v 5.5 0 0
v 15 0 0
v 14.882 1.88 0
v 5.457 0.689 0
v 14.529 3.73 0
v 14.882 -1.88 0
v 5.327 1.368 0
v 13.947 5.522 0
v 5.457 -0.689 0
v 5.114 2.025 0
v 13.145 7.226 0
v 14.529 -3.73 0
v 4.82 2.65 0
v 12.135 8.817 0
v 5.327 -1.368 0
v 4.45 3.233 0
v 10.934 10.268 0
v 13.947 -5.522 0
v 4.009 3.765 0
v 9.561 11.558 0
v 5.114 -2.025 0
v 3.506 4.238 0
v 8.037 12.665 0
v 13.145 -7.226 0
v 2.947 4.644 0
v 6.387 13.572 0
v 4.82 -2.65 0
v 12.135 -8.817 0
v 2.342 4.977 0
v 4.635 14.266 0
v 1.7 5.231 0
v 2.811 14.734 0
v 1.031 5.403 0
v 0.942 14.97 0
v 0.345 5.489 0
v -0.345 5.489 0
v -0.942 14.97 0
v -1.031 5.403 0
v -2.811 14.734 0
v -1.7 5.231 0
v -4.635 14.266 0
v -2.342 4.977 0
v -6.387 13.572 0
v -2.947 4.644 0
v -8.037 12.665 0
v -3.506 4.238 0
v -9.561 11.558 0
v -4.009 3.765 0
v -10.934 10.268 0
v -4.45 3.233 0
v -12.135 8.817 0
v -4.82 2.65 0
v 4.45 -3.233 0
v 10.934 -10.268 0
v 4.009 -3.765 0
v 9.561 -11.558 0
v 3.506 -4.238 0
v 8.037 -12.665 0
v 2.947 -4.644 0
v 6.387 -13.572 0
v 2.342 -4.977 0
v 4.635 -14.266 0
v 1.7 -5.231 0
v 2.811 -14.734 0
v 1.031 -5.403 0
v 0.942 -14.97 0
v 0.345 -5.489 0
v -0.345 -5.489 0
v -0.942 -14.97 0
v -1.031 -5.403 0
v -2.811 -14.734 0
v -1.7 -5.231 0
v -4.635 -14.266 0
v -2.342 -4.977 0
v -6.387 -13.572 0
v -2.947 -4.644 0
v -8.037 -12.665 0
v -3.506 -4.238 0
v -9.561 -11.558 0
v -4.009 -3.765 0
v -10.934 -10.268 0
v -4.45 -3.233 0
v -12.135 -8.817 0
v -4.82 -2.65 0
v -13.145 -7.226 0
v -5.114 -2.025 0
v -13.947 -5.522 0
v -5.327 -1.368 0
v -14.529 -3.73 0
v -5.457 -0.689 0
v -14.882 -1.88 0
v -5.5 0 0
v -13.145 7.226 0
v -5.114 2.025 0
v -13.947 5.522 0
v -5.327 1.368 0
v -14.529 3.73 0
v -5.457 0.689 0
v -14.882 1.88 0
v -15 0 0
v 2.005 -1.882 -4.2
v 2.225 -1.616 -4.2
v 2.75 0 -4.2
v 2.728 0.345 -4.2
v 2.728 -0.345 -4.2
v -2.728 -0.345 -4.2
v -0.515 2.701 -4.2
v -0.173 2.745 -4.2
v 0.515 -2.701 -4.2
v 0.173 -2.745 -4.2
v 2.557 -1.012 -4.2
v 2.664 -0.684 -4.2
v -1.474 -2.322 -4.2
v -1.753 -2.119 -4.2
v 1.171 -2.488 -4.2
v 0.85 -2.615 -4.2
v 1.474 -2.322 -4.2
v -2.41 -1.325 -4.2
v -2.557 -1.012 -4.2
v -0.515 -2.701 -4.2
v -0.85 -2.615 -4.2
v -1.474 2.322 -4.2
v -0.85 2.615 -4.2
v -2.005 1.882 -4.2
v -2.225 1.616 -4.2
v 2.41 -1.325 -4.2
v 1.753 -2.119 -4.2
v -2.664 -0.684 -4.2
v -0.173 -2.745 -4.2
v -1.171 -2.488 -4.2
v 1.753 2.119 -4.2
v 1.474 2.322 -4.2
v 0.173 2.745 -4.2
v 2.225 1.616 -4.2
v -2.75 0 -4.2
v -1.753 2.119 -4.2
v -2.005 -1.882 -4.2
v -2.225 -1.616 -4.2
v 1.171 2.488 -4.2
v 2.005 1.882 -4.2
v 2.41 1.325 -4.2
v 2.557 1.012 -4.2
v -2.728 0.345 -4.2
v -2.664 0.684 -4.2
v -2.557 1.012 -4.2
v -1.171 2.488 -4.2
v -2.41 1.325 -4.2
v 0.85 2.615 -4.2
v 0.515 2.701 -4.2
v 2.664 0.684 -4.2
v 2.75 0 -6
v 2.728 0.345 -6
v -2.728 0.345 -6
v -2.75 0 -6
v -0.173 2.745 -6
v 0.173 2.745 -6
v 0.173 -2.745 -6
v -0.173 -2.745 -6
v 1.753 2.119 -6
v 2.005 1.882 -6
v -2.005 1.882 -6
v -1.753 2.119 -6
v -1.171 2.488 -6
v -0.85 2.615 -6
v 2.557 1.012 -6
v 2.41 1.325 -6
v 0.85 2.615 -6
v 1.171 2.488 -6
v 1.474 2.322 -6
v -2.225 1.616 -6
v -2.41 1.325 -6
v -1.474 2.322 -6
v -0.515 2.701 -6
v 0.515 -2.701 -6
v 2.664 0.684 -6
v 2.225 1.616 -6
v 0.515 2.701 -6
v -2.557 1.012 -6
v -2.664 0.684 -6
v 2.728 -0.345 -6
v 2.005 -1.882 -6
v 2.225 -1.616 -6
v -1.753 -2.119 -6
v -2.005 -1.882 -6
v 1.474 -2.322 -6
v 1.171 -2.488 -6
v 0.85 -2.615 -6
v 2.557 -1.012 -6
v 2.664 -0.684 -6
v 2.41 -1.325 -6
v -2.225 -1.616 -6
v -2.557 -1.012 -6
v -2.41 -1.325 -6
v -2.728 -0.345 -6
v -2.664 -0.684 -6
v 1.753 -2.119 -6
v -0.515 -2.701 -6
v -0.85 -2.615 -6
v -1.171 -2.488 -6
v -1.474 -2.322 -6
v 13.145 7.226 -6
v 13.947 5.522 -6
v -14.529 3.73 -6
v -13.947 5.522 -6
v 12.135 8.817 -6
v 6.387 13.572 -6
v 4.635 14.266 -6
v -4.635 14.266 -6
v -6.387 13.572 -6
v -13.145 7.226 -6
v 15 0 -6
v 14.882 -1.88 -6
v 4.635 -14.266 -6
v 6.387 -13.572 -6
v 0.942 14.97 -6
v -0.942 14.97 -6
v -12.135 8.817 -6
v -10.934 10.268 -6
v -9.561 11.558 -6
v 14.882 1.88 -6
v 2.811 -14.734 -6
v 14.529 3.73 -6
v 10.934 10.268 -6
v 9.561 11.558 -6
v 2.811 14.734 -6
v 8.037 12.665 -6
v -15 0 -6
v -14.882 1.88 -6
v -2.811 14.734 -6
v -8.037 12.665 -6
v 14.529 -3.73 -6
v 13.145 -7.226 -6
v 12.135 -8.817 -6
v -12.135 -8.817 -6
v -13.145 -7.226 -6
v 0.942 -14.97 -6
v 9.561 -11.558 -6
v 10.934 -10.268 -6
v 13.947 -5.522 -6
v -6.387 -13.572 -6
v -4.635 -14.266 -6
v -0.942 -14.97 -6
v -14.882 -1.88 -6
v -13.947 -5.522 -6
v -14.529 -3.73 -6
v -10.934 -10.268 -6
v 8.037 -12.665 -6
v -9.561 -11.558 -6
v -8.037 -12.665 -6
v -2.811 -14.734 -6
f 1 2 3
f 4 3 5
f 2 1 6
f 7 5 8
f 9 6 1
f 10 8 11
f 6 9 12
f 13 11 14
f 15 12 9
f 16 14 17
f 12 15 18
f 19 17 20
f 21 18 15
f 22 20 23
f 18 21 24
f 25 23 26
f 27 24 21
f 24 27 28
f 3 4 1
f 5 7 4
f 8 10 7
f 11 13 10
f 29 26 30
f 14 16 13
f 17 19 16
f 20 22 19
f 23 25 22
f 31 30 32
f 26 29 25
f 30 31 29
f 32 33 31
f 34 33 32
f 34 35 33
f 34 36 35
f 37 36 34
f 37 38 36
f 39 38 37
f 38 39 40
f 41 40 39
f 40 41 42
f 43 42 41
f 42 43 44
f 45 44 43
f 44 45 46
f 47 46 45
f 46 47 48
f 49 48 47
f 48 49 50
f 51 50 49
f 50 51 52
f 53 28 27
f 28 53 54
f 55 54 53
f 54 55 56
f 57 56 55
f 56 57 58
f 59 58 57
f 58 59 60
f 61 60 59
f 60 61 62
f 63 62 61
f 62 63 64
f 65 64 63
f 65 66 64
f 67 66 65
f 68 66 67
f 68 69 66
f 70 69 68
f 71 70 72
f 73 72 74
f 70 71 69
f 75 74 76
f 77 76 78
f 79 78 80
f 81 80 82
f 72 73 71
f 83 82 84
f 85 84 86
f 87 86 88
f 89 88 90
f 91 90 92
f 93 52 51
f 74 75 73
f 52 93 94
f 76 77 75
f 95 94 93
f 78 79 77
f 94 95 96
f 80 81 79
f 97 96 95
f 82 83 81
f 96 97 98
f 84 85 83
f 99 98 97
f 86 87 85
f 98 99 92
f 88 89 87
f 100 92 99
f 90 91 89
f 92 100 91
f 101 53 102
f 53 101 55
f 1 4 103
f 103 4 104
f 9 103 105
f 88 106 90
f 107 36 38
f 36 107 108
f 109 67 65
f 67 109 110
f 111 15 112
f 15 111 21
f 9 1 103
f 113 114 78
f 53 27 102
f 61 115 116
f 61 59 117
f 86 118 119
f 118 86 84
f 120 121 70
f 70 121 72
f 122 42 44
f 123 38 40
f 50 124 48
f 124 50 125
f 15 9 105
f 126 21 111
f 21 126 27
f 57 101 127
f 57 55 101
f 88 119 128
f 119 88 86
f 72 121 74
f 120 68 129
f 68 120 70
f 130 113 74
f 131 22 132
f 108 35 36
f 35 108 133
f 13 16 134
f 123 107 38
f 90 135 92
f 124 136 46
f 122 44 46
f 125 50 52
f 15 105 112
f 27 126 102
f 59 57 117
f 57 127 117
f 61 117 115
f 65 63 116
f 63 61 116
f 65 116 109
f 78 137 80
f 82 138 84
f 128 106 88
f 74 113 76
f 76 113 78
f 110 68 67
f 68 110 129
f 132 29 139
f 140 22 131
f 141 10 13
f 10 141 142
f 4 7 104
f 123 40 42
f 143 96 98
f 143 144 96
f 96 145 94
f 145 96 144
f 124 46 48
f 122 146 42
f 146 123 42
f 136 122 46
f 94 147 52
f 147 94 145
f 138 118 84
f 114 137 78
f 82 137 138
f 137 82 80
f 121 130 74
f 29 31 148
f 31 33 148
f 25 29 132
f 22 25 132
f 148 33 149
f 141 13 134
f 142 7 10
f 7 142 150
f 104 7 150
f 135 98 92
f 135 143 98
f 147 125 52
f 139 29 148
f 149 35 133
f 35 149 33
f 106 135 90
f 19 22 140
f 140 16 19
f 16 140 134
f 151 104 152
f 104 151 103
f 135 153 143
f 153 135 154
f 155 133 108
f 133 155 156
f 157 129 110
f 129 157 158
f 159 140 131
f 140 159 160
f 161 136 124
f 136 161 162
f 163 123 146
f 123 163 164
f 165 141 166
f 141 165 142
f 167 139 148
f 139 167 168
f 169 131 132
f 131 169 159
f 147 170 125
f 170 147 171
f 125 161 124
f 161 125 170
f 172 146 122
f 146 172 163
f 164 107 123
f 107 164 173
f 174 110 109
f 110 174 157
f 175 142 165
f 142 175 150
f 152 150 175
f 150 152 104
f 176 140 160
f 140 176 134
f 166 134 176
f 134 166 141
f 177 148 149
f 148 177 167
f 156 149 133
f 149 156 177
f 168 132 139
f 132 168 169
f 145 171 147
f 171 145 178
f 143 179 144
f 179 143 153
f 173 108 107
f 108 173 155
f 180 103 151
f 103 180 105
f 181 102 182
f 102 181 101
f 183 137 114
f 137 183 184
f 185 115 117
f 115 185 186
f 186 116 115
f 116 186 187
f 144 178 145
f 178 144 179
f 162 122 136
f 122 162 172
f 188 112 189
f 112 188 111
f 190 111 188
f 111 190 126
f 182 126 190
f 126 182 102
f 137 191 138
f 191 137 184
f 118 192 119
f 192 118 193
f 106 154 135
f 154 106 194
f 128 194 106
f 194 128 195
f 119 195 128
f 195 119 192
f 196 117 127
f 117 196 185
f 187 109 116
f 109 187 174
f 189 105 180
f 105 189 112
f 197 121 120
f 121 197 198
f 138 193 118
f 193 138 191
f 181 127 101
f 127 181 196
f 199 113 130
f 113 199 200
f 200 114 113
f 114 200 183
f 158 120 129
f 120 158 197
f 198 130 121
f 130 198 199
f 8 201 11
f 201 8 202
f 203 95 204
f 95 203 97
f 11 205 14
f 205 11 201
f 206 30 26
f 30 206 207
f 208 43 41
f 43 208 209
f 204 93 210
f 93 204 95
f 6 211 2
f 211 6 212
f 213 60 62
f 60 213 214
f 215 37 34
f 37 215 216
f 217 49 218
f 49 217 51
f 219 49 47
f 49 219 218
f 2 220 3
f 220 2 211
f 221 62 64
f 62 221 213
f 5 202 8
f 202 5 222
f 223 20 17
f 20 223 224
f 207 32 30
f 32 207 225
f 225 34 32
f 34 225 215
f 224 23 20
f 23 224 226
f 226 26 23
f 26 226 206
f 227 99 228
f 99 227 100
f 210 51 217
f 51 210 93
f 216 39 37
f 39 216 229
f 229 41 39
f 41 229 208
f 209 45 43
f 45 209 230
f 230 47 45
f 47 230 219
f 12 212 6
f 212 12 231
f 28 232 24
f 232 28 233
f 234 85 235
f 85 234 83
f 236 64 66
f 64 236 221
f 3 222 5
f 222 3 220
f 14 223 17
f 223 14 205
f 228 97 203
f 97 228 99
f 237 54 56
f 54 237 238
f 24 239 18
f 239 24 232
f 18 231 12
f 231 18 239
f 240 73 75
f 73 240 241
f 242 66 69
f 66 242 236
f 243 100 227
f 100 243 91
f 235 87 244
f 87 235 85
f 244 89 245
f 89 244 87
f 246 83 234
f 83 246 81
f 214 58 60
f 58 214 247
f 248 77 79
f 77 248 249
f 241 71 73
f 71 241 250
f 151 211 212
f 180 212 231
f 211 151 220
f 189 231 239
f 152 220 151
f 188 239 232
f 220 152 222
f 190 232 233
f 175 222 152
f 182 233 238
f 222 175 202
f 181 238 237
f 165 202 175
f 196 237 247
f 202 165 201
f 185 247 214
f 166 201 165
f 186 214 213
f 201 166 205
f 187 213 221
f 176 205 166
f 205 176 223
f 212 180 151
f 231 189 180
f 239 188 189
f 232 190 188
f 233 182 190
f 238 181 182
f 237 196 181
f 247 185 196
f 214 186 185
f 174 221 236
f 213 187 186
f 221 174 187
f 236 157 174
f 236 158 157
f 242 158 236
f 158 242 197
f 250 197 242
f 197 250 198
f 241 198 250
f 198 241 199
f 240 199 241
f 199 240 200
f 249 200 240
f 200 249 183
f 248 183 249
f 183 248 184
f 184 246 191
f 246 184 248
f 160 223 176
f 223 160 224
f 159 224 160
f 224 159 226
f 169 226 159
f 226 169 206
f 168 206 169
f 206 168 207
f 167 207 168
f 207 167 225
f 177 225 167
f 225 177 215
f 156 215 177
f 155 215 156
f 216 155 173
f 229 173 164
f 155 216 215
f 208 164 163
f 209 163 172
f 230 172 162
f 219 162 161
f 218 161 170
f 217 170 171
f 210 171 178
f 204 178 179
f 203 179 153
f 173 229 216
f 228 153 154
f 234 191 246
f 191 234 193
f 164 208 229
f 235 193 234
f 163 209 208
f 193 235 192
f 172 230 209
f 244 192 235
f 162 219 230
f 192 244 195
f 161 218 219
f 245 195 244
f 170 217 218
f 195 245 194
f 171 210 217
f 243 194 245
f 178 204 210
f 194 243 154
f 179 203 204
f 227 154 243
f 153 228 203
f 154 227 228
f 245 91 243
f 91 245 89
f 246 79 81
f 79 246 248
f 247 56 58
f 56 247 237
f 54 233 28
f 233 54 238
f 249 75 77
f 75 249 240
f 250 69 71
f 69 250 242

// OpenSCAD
$fn = 50;

difference() {
	union() {
		translate(v = [0, 0, -6.0]) {
			cylinder(h = 6, r = 15.0);
		}
	}
	union() {
		translate(v = [0, 0, 0]) {
			rotate(a = [0, 0, 0]) {
				difference() {
					union() {
						translate(v = [0, 0, -9.0]) {
							cylinder(h = 9, r = 2.25);
						}
						translate(v = [0, 0, -4.2]) {
							cylinder(h = 4.2, r1 = 2.75, r2 = 5.5);
						}
						translate(v = [0, 0, -9.0]) {
							cylinder(h = 9, r = 2.75);
						}
						translate(v = [0, 0, -9.0]) {
							cylinder(h = 9, r = 2.25);
						}
					}
					union();
				}
			}
		}
	}
}
